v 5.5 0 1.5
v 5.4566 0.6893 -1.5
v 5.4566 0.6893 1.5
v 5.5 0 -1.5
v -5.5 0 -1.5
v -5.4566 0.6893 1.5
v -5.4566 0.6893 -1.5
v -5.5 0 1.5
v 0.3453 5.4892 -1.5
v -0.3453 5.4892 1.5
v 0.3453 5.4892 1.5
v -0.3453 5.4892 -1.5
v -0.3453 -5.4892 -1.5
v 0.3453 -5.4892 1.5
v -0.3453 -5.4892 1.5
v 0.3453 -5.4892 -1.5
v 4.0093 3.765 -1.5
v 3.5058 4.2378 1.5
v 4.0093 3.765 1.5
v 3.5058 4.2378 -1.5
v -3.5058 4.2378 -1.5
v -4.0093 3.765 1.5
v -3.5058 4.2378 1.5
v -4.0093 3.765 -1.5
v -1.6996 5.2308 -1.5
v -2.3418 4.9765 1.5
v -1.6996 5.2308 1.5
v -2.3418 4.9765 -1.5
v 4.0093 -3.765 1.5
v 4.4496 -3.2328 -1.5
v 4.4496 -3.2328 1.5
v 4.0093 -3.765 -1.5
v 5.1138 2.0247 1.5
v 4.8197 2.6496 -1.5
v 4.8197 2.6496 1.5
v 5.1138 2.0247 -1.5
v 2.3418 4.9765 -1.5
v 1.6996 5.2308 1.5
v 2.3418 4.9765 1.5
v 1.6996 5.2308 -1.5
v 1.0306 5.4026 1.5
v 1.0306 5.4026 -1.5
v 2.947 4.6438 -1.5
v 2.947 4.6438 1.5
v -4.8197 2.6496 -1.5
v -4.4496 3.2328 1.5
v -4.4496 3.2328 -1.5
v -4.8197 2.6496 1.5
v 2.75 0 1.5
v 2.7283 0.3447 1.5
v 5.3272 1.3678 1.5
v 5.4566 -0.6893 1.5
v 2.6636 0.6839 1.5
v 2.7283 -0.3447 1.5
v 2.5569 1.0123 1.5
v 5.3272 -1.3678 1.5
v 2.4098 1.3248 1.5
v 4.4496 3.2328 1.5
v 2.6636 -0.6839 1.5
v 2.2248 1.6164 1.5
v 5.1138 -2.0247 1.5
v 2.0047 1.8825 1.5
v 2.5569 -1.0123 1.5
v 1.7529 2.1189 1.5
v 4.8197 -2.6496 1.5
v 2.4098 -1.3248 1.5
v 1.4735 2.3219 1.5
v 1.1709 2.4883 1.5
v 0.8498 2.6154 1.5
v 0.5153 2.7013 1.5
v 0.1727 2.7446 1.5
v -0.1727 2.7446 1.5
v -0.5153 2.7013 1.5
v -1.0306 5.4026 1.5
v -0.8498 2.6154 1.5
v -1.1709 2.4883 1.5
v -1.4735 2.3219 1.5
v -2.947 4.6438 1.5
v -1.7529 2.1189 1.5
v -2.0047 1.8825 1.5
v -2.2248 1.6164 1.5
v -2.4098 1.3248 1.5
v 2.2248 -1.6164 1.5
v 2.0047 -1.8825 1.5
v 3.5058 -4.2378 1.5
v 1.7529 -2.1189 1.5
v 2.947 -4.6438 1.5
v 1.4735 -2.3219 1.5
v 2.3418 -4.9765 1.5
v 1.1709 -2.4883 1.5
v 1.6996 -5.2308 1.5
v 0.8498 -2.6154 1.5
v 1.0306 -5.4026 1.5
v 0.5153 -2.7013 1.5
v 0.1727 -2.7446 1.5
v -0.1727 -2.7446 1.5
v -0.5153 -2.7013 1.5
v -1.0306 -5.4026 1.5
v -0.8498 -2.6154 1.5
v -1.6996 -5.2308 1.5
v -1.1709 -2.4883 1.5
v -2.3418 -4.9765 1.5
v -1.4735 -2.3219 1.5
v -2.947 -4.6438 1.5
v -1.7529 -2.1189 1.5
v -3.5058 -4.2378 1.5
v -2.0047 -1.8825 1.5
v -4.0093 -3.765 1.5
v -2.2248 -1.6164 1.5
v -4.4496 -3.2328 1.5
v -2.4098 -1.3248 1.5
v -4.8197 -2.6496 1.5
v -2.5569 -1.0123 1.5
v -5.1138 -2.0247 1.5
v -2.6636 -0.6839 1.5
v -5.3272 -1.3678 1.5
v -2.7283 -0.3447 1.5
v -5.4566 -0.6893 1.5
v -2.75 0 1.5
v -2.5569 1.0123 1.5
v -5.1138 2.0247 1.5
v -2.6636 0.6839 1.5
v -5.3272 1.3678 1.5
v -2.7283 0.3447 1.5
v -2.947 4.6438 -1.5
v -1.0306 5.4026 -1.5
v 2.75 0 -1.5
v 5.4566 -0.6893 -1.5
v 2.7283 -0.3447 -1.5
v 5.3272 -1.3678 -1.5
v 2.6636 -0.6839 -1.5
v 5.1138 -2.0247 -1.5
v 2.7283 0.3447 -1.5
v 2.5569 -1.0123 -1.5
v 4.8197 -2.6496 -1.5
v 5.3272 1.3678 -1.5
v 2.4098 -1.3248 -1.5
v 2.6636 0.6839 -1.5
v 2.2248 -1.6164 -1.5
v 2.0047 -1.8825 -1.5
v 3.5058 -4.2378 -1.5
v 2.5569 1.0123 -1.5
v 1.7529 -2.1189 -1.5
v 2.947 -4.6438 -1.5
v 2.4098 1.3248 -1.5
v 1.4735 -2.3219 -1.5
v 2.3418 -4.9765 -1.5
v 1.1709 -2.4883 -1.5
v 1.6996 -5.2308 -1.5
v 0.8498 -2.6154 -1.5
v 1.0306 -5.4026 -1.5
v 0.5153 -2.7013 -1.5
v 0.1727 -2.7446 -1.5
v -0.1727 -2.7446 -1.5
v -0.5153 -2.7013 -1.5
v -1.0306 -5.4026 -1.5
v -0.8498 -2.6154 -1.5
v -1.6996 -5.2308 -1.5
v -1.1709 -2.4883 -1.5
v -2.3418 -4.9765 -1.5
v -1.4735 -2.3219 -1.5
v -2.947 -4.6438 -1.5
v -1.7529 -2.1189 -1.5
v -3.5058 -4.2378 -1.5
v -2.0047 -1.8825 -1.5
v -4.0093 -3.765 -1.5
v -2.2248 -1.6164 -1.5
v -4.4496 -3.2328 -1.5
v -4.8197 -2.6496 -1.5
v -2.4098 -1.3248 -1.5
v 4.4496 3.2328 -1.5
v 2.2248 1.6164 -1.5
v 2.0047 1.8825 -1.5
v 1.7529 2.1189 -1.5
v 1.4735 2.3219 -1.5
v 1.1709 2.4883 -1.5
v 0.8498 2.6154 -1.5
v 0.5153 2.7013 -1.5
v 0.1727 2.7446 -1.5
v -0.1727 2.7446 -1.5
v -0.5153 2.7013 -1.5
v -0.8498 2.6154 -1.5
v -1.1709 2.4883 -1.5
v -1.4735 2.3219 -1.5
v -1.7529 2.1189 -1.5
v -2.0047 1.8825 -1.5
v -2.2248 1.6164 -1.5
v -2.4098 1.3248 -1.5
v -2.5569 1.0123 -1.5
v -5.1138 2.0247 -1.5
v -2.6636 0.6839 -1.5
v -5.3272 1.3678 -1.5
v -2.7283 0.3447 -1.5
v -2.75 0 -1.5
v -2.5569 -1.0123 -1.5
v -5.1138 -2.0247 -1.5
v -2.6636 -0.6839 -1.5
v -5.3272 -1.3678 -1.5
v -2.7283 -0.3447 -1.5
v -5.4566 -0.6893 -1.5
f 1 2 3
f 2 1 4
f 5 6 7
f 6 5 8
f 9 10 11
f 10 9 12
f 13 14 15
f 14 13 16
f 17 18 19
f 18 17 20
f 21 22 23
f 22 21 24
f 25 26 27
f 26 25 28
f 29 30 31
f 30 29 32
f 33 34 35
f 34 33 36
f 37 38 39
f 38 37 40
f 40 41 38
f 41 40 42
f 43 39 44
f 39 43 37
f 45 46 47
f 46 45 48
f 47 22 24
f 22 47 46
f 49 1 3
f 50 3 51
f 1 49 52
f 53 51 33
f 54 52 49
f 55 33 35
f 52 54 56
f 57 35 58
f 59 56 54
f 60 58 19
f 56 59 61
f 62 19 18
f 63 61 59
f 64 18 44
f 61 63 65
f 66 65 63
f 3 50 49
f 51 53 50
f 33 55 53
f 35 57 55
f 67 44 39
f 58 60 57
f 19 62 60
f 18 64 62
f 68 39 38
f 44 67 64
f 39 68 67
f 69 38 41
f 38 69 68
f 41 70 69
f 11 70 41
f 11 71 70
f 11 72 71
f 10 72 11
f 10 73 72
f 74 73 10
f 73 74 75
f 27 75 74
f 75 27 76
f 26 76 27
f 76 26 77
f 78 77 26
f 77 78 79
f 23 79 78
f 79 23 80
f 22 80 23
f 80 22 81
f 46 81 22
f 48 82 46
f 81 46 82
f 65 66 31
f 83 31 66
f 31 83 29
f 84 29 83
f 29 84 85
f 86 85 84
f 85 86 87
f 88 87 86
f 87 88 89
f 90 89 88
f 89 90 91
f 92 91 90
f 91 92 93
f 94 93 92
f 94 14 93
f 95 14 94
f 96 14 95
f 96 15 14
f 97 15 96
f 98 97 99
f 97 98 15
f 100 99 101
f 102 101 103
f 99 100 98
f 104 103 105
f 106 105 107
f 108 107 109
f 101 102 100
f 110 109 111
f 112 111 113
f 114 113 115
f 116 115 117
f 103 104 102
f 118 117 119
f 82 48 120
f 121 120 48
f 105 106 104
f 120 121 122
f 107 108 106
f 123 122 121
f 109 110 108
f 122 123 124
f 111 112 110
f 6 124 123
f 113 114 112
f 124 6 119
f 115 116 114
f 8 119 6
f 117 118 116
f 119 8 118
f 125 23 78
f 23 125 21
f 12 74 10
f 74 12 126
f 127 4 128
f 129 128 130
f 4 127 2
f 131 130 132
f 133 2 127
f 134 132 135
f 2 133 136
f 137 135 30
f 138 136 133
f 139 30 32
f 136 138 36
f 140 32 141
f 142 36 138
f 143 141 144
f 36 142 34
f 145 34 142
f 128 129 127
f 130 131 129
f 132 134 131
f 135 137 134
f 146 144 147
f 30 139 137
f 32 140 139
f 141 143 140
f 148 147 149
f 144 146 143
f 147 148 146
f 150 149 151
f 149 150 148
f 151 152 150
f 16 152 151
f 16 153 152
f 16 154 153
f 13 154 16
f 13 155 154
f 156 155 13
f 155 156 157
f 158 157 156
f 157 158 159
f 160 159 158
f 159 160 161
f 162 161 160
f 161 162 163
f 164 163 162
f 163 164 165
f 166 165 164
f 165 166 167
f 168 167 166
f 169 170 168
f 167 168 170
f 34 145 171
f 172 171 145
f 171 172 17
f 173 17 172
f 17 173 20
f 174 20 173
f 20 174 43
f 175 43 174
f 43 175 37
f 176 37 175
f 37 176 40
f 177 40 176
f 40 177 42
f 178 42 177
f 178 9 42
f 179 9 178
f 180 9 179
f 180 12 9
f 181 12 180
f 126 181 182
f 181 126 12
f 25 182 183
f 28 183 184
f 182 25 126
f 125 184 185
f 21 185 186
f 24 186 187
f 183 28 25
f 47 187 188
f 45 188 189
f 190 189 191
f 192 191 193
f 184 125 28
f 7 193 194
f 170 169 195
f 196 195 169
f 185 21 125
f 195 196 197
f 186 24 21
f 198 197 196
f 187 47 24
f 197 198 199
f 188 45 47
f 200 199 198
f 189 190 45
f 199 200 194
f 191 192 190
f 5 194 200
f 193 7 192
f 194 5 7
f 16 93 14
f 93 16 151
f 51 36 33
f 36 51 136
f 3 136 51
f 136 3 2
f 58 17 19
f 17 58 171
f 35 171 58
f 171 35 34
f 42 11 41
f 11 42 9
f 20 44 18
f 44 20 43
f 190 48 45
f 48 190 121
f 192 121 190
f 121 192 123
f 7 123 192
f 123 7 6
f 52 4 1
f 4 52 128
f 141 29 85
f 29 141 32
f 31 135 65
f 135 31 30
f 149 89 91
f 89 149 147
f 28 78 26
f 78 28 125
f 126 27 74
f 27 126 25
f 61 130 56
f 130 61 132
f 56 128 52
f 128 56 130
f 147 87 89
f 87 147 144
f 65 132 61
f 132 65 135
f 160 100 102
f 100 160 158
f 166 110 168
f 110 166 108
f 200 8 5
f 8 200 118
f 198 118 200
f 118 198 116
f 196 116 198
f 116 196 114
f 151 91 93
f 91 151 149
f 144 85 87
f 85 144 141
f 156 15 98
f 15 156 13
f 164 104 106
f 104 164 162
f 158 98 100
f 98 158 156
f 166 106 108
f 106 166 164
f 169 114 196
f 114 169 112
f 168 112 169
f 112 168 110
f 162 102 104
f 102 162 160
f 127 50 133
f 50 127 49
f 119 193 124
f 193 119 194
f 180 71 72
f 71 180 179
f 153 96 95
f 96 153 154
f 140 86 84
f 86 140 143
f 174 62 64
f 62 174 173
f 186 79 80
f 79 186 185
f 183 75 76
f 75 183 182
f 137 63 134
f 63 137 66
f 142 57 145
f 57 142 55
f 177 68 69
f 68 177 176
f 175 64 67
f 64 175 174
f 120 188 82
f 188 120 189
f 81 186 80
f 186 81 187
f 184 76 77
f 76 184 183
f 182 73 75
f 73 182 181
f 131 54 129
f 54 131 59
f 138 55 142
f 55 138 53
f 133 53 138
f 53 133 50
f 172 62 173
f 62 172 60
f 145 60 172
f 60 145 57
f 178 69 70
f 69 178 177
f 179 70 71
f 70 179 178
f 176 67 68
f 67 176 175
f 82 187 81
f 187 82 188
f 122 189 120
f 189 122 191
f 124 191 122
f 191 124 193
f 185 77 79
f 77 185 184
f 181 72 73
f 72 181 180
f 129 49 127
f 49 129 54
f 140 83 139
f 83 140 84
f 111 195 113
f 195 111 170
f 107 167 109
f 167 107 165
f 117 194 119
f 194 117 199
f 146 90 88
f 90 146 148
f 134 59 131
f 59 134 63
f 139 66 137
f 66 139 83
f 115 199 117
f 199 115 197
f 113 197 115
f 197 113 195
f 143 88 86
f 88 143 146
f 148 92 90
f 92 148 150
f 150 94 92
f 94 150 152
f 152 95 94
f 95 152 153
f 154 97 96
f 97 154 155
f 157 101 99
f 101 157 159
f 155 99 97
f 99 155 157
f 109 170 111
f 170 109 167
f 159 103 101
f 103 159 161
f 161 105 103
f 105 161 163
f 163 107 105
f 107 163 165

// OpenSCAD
$fn = 50;


difference() {
	union() {
		translate(v = [0, 0, -1.5000000000]) {
			cylinder(h = 3, r = 5.5000000000);
		}
	}
	union() {
		translate(v = [0, 0, -100.0000000000]) {
			cylinder(h = 200, r = 2.7500000000);
		}
	}
}
